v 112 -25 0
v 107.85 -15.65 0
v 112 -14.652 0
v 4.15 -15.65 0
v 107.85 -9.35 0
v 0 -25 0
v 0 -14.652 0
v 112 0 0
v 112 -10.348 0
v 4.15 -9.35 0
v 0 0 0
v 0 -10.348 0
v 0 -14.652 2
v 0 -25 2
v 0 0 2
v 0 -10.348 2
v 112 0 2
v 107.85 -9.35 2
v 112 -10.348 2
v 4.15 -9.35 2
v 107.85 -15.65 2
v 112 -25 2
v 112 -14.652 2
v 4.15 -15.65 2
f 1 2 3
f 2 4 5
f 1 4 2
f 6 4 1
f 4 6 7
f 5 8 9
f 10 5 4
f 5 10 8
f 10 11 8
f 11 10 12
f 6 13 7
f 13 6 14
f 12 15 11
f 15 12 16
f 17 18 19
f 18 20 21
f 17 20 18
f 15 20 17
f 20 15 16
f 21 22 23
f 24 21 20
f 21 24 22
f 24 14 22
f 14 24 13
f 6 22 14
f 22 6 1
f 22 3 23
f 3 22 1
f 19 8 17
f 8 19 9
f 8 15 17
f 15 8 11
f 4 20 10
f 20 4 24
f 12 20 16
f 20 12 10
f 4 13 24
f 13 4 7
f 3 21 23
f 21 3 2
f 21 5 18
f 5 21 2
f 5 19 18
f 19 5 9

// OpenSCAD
// Floor_Tile_C.stl  -  Store Versile room frame (Rev C)
// Quantity: 1   Filament: Any colour (covered by the wood-grain sticker)
// Print: layer 0.2 mm, infill 15%, 2 walls, brim 0 mm, NO supports
// Orientation: flat  (as installed)
// Notes: Wood sticker on top after printing.
// The library draws parts with their front toward +Y; mirror([0,1,0]) makes the real
// part face the viewer correctly (see build.py). Edit dimensions in versile_parts.scad.
use <../versile_parts.scad>

mirror([0, 1, 0]) floor_tile(112, fem_l=true, fem_r=true);
